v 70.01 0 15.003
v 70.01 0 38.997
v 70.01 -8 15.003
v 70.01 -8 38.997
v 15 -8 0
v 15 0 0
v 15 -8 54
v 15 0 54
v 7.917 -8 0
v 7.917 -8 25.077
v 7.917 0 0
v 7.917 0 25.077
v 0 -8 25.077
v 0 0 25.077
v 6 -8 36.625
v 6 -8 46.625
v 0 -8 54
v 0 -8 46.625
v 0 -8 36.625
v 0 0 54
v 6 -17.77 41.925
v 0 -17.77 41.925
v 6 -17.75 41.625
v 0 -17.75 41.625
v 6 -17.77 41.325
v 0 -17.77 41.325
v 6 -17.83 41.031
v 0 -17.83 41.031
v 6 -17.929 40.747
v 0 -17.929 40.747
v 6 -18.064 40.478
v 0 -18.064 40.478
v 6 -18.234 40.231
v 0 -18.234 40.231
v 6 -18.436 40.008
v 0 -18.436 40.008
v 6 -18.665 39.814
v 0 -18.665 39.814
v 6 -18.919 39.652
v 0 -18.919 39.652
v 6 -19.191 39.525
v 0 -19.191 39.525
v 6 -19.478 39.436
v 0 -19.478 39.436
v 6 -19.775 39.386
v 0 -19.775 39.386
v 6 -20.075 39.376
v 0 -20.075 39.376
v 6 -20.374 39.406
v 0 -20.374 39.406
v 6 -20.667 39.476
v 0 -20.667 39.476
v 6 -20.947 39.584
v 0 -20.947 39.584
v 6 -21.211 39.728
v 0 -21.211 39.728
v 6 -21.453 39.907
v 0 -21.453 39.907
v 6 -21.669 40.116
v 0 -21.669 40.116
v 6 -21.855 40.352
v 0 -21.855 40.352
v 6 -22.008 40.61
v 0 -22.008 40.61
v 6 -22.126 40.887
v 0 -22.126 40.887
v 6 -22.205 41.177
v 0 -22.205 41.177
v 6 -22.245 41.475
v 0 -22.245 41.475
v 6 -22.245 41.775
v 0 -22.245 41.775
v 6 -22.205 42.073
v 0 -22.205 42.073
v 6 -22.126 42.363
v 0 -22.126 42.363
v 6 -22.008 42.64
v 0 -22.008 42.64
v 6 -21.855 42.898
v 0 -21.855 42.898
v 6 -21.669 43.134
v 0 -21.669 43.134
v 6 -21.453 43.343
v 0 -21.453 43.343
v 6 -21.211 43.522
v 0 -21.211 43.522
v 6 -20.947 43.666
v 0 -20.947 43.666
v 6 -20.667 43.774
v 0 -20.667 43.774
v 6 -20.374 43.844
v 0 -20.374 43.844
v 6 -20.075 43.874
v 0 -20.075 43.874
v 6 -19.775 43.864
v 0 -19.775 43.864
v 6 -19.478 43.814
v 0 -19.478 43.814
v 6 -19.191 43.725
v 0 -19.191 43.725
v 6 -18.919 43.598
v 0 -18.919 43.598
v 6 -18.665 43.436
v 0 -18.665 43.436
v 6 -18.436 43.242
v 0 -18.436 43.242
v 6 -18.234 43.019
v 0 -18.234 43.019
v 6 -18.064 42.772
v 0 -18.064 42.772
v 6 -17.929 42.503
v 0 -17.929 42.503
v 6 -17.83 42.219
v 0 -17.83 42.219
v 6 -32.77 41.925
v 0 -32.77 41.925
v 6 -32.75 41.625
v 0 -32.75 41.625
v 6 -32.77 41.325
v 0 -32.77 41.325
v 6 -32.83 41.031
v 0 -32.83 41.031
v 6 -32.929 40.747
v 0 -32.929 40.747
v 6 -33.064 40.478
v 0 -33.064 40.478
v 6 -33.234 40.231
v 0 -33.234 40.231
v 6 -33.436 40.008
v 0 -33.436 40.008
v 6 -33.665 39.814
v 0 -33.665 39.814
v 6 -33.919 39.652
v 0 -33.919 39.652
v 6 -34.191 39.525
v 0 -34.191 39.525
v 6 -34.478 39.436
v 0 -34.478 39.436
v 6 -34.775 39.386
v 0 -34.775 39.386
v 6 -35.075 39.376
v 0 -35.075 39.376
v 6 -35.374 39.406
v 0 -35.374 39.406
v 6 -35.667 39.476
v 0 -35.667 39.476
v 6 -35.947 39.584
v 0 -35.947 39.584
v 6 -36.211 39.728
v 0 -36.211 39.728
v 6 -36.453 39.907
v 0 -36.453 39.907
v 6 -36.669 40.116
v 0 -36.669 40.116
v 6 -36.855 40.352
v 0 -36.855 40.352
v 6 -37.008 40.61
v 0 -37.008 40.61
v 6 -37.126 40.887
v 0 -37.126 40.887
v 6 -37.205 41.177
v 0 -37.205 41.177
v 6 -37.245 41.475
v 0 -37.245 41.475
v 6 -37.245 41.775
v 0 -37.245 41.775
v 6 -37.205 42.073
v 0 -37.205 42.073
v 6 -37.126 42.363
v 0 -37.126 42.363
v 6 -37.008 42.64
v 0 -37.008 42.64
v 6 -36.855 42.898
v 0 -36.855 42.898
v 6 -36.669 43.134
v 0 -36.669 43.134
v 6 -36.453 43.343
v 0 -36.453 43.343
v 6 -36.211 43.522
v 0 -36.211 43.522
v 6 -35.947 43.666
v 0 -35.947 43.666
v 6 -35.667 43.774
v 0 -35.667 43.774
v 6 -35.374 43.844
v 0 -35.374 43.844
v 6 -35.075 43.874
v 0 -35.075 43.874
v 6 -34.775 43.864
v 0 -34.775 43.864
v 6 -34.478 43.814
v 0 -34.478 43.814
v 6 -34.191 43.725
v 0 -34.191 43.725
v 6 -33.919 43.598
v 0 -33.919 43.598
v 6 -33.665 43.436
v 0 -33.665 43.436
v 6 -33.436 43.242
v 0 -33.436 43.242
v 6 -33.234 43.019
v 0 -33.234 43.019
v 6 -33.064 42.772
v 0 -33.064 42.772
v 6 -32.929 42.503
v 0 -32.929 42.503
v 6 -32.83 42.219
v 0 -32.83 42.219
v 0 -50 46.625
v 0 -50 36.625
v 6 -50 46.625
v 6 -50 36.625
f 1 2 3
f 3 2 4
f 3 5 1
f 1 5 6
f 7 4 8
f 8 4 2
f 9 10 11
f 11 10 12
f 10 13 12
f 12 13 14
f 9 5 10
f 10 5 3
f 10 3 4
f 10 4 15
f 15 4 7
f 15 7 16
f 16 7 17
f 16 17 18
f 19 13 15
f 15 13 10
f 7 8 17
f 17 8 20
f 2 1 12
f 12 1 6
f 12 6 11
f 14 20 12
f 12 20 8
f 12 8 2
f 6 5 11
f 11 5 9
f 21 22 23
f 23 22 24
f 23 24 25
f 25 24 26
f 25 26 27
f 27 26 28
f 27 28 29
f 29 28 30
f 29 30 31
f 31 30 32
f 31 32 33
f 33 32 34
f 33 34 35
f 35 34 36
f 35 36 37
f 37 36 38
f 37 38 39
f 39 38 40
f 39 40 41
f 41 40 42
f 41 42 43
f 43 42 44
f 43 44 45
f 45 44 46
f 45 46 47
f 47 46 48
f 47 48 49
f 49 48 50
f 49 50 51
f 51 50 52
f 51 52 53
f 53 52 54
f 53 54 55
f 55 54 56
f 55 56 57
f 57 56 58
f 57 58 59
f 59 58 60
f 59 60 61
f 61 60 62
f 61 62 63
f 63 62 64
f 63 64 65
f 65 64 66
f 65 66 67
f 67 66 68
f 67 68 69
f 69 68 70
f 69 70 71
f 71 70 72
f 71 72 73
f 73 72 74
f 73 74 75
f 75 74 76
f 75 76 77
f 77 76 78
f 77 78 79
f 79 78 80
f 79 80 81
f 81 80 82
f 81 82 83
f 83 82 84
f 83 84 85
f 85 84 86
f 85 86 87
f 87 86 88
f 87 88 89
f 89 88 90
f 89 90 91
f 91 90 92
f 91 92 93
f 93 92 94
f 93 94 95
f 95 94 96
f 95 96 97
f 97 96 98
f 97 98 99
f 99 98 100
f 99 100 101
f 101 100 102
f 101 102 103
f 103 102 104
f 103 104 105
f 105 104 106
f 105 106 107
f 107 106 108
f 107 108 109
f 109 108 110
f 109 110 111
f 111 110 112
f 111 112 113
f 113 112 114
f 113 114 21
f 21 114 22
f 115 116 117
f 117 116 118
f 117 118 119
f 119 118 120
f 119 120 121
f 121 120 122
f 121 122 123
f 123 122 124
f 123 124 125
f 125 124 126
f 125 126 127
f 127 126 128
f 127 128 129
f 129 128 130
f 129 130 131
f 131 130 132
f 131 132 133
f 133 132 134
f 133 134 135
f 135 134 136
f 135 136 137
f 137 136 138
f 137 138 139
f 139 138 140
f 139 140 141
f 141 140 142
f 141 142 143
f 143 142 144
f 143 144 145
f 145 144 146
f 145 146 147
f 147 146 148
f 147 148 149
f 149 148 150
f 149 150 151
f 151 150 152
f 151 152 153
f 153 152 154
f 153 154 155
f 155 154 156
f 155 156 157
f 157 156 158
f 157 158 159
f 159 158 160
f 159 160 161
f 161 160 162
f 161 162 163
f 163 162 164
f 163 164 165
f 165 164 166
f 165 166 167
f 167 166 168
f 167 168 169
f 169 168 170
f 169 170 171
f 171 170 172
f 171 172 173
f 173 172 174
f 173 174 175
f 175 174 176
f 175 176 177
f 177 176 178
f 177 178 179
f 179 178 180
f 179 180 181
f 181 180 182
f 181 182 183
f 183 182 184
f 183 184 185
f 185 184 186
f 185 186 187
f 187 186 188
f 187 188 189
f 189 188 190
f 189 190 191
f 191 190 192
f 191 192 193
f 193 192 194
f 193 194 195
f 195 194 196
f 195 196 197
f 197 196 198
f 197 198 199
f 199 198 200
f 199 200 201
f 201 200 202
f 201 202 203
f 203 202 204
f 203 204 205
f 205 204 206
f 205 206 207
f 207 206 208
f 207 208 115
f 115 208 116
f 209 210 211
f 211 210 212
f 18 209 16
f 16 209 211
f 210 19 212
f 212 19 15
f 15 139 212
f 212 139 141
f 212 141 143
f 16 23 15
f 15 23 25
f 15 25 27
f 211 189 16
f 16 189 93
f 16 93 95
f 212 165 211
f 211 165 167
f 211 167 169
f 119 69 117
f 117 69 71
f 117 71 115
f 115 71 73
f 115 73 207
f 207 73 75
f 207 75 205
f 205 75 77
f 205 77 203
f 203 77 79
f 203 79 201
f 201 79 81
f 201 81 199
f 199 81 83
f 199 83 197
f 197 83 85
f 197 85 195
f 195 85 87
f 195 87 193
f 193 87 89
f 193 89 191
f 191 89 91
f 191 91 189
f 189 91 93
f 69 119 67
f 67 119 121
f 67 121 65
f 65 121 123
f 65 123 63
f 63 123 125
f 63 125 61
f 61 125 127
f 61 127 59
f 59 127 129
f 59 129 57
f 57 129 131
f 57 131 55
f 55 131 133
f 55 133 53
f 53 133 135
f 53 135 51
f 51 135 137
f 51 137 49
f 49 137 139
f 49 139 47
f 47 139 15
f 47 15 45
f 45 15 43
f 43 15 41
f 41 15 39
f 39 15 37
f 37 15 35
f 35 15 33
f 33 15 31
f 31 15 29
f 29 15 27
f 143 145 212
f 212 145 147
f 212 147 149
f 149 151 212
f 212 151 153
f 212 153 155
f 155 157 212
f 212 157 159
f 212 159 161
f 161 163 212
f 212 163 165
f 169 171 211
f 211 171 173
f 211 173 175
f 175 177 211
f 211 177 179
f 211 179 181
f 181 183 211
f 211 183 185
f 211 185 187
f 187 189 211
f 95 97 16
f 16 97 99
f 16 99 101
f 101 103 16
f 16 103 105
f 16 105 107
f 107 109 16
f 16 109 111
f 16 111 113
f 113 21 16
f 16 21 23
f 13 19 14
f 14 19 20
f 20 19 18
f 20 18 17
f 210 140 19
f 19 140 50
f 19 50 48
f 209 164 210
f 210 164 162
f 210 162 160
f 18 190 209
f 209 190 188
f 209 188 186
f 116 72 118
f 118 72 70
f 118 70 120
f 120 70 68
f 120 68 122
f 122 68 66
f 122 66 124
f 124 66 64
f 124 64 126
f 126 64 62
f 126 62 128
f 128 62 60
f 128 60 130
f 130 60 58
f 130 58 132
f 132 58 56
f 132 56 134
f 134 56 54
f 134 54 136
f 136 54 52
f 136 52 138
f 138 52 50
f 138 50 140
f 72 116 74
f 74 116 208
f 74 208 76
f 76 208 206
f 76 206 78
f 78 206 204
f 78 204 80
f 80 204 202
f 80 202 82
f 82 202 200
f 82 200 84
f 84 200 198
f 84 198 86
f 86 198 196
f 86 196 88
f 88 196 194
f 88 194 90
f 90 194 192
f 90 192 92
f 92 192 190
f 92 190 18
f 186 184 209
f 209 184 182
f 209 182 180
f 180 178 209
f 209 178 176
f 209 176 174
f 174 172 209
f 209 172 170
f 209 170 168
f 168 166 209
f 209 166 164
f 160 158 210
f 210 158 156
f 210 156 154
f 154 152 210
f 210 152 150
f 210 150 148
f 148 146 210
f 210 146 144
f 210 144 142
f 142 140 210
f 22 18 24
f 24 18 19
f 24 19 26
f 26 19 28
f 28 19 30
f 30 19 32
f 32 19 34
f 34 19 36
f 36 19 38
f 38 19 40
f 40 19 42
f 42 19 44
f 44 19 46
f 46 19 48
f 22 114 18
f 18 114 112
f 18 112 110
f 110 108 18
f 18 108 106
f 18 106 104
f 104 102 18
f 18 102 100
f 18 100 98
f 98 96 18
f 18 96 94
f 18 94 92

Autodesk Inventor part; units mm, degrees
ref_plane "YZ Plane" through (0, 0, 0) normal (1, 0, 0) x (0, 1, 0)
ref_plane "XZ Plane" through (0, 0, 0) normal (0, 1, 0) x (-1, 0, 0)
ref_plane "XY Plane" through (0, 0, 0) normal (0, 0, 1) x (1, 0, 0)
sketch "スケッチ2" plane through (0, 0, 0) normal (1, 0, 0) x (0, 1, 0)
  line L0 (-50, 46.625) -> (0, 46.625)
  line L1 (0, 46.625) -> (0, 36.625)
  line L2 (0, 36.625) -> (-50, 36.625)
  line L3 (-50, 36.625) -> (-50, 46.625)
  line L4 (0, 36.625) -> (-8, 36.625)
  line L5 (-8, 36.625) -> (-8, 0)
  line L6 (-8, 0) -> (0, 0)
  line L7 (0, 0) -> (0, 36.625)
  circle A0 centre (-20, 41.625) radius 2.25
  circle A1 centre (-35, 41.625) radius 2.25
  line L8 (-8, 36.625) -> (0, 36.625)
  line L9 (0, 36.625) -> (0, 54)
  line L10 (0, 54) -> (-8, 54)
  line L11 (-8, 54) -> (-8, 36.625)
  point P0 (-8, 46.625)
  point P1 (0, 46.625)
  dimension "d7" = 50
  dimension "d8" = 10
  dimension "d10" = 8
  dimension "d11" = 4.5
  dimension "d12" = 4.5
  dimension "d13" = 15
  dimension "d14" = 20
  dimension "d15" = 5
  dimension "d16" = 5
  dimension "d27" = 54
  dimension "d28" = 7.375
extrude "押し出し2" add sketch "スケッチ2" along normal blind 6 contours L0 L11 L2 L3
extrude "押し出し5" add sketch "スケッチ2" along normal blind 70 contours L11 L10 L9 L0 | L0 L1 L2 L11 | L2 L7 L6 L5
sketch "スケッチ4" plane through (0, -8, 0) normal (0, -1, 0) x (1, 0, 0)
  line L0 (70, 0) -> (70, 54) projected
  line L1 (70, 15) -> (15, 0)
  line L2 (15, 0) -> (15, 54)
  line L3 (15, 54) -> (70, 39)
  line L4 (0, 54) -> (70, 54) projected
  line L5 (0, 36.625) -> (0, 0) projected
  line L6 (0, 0) -> (70, 0) projected
  line L7 (0, 25.077) -> (7.9173, 25.077)
  line L8 (7.9173, 25.077) -> (7.9173, 0)
  line L9 (7.9173, 0) -> (0, 0)
  line L10 (0, 0) -> (0, 25.077)
  dimension "d31" = 15
  dimension "d32" = 15
  dimension "d33" = 15
extrude "押し出し6" cut sketch "スケッチ4" against normal blind 8 contours L6 L1 L0 | L6 L5 L7 L8 | L3 L4 L0
sketch "スケッチ5" plane through (0, 0, 54) normal (0, 1, 0) x (1, 0, 0)
  line L0 (15, 0) -> (70, 15) projected
  line L1 (70, 39) -> (15, 54) projected
  line L2 (70.01, 38.9973) -> (70.01, 15.0027)
  line L3 (70, 15) -> (15, 0) projected
  line L4 (70, 39) -> (70, 15) projected
  line L5 (70.01, 15.0027) -> (70, 15)
  line L6 (70.01, 38.9973) -> (70, 39)
  point P0 (0, 54)
  dimension "d37" = 0.01
extrude "押し出し7" add sketch "スケッチ5" against normal blind 8
properties part number "left-nail" material "ABS プラスチック"
